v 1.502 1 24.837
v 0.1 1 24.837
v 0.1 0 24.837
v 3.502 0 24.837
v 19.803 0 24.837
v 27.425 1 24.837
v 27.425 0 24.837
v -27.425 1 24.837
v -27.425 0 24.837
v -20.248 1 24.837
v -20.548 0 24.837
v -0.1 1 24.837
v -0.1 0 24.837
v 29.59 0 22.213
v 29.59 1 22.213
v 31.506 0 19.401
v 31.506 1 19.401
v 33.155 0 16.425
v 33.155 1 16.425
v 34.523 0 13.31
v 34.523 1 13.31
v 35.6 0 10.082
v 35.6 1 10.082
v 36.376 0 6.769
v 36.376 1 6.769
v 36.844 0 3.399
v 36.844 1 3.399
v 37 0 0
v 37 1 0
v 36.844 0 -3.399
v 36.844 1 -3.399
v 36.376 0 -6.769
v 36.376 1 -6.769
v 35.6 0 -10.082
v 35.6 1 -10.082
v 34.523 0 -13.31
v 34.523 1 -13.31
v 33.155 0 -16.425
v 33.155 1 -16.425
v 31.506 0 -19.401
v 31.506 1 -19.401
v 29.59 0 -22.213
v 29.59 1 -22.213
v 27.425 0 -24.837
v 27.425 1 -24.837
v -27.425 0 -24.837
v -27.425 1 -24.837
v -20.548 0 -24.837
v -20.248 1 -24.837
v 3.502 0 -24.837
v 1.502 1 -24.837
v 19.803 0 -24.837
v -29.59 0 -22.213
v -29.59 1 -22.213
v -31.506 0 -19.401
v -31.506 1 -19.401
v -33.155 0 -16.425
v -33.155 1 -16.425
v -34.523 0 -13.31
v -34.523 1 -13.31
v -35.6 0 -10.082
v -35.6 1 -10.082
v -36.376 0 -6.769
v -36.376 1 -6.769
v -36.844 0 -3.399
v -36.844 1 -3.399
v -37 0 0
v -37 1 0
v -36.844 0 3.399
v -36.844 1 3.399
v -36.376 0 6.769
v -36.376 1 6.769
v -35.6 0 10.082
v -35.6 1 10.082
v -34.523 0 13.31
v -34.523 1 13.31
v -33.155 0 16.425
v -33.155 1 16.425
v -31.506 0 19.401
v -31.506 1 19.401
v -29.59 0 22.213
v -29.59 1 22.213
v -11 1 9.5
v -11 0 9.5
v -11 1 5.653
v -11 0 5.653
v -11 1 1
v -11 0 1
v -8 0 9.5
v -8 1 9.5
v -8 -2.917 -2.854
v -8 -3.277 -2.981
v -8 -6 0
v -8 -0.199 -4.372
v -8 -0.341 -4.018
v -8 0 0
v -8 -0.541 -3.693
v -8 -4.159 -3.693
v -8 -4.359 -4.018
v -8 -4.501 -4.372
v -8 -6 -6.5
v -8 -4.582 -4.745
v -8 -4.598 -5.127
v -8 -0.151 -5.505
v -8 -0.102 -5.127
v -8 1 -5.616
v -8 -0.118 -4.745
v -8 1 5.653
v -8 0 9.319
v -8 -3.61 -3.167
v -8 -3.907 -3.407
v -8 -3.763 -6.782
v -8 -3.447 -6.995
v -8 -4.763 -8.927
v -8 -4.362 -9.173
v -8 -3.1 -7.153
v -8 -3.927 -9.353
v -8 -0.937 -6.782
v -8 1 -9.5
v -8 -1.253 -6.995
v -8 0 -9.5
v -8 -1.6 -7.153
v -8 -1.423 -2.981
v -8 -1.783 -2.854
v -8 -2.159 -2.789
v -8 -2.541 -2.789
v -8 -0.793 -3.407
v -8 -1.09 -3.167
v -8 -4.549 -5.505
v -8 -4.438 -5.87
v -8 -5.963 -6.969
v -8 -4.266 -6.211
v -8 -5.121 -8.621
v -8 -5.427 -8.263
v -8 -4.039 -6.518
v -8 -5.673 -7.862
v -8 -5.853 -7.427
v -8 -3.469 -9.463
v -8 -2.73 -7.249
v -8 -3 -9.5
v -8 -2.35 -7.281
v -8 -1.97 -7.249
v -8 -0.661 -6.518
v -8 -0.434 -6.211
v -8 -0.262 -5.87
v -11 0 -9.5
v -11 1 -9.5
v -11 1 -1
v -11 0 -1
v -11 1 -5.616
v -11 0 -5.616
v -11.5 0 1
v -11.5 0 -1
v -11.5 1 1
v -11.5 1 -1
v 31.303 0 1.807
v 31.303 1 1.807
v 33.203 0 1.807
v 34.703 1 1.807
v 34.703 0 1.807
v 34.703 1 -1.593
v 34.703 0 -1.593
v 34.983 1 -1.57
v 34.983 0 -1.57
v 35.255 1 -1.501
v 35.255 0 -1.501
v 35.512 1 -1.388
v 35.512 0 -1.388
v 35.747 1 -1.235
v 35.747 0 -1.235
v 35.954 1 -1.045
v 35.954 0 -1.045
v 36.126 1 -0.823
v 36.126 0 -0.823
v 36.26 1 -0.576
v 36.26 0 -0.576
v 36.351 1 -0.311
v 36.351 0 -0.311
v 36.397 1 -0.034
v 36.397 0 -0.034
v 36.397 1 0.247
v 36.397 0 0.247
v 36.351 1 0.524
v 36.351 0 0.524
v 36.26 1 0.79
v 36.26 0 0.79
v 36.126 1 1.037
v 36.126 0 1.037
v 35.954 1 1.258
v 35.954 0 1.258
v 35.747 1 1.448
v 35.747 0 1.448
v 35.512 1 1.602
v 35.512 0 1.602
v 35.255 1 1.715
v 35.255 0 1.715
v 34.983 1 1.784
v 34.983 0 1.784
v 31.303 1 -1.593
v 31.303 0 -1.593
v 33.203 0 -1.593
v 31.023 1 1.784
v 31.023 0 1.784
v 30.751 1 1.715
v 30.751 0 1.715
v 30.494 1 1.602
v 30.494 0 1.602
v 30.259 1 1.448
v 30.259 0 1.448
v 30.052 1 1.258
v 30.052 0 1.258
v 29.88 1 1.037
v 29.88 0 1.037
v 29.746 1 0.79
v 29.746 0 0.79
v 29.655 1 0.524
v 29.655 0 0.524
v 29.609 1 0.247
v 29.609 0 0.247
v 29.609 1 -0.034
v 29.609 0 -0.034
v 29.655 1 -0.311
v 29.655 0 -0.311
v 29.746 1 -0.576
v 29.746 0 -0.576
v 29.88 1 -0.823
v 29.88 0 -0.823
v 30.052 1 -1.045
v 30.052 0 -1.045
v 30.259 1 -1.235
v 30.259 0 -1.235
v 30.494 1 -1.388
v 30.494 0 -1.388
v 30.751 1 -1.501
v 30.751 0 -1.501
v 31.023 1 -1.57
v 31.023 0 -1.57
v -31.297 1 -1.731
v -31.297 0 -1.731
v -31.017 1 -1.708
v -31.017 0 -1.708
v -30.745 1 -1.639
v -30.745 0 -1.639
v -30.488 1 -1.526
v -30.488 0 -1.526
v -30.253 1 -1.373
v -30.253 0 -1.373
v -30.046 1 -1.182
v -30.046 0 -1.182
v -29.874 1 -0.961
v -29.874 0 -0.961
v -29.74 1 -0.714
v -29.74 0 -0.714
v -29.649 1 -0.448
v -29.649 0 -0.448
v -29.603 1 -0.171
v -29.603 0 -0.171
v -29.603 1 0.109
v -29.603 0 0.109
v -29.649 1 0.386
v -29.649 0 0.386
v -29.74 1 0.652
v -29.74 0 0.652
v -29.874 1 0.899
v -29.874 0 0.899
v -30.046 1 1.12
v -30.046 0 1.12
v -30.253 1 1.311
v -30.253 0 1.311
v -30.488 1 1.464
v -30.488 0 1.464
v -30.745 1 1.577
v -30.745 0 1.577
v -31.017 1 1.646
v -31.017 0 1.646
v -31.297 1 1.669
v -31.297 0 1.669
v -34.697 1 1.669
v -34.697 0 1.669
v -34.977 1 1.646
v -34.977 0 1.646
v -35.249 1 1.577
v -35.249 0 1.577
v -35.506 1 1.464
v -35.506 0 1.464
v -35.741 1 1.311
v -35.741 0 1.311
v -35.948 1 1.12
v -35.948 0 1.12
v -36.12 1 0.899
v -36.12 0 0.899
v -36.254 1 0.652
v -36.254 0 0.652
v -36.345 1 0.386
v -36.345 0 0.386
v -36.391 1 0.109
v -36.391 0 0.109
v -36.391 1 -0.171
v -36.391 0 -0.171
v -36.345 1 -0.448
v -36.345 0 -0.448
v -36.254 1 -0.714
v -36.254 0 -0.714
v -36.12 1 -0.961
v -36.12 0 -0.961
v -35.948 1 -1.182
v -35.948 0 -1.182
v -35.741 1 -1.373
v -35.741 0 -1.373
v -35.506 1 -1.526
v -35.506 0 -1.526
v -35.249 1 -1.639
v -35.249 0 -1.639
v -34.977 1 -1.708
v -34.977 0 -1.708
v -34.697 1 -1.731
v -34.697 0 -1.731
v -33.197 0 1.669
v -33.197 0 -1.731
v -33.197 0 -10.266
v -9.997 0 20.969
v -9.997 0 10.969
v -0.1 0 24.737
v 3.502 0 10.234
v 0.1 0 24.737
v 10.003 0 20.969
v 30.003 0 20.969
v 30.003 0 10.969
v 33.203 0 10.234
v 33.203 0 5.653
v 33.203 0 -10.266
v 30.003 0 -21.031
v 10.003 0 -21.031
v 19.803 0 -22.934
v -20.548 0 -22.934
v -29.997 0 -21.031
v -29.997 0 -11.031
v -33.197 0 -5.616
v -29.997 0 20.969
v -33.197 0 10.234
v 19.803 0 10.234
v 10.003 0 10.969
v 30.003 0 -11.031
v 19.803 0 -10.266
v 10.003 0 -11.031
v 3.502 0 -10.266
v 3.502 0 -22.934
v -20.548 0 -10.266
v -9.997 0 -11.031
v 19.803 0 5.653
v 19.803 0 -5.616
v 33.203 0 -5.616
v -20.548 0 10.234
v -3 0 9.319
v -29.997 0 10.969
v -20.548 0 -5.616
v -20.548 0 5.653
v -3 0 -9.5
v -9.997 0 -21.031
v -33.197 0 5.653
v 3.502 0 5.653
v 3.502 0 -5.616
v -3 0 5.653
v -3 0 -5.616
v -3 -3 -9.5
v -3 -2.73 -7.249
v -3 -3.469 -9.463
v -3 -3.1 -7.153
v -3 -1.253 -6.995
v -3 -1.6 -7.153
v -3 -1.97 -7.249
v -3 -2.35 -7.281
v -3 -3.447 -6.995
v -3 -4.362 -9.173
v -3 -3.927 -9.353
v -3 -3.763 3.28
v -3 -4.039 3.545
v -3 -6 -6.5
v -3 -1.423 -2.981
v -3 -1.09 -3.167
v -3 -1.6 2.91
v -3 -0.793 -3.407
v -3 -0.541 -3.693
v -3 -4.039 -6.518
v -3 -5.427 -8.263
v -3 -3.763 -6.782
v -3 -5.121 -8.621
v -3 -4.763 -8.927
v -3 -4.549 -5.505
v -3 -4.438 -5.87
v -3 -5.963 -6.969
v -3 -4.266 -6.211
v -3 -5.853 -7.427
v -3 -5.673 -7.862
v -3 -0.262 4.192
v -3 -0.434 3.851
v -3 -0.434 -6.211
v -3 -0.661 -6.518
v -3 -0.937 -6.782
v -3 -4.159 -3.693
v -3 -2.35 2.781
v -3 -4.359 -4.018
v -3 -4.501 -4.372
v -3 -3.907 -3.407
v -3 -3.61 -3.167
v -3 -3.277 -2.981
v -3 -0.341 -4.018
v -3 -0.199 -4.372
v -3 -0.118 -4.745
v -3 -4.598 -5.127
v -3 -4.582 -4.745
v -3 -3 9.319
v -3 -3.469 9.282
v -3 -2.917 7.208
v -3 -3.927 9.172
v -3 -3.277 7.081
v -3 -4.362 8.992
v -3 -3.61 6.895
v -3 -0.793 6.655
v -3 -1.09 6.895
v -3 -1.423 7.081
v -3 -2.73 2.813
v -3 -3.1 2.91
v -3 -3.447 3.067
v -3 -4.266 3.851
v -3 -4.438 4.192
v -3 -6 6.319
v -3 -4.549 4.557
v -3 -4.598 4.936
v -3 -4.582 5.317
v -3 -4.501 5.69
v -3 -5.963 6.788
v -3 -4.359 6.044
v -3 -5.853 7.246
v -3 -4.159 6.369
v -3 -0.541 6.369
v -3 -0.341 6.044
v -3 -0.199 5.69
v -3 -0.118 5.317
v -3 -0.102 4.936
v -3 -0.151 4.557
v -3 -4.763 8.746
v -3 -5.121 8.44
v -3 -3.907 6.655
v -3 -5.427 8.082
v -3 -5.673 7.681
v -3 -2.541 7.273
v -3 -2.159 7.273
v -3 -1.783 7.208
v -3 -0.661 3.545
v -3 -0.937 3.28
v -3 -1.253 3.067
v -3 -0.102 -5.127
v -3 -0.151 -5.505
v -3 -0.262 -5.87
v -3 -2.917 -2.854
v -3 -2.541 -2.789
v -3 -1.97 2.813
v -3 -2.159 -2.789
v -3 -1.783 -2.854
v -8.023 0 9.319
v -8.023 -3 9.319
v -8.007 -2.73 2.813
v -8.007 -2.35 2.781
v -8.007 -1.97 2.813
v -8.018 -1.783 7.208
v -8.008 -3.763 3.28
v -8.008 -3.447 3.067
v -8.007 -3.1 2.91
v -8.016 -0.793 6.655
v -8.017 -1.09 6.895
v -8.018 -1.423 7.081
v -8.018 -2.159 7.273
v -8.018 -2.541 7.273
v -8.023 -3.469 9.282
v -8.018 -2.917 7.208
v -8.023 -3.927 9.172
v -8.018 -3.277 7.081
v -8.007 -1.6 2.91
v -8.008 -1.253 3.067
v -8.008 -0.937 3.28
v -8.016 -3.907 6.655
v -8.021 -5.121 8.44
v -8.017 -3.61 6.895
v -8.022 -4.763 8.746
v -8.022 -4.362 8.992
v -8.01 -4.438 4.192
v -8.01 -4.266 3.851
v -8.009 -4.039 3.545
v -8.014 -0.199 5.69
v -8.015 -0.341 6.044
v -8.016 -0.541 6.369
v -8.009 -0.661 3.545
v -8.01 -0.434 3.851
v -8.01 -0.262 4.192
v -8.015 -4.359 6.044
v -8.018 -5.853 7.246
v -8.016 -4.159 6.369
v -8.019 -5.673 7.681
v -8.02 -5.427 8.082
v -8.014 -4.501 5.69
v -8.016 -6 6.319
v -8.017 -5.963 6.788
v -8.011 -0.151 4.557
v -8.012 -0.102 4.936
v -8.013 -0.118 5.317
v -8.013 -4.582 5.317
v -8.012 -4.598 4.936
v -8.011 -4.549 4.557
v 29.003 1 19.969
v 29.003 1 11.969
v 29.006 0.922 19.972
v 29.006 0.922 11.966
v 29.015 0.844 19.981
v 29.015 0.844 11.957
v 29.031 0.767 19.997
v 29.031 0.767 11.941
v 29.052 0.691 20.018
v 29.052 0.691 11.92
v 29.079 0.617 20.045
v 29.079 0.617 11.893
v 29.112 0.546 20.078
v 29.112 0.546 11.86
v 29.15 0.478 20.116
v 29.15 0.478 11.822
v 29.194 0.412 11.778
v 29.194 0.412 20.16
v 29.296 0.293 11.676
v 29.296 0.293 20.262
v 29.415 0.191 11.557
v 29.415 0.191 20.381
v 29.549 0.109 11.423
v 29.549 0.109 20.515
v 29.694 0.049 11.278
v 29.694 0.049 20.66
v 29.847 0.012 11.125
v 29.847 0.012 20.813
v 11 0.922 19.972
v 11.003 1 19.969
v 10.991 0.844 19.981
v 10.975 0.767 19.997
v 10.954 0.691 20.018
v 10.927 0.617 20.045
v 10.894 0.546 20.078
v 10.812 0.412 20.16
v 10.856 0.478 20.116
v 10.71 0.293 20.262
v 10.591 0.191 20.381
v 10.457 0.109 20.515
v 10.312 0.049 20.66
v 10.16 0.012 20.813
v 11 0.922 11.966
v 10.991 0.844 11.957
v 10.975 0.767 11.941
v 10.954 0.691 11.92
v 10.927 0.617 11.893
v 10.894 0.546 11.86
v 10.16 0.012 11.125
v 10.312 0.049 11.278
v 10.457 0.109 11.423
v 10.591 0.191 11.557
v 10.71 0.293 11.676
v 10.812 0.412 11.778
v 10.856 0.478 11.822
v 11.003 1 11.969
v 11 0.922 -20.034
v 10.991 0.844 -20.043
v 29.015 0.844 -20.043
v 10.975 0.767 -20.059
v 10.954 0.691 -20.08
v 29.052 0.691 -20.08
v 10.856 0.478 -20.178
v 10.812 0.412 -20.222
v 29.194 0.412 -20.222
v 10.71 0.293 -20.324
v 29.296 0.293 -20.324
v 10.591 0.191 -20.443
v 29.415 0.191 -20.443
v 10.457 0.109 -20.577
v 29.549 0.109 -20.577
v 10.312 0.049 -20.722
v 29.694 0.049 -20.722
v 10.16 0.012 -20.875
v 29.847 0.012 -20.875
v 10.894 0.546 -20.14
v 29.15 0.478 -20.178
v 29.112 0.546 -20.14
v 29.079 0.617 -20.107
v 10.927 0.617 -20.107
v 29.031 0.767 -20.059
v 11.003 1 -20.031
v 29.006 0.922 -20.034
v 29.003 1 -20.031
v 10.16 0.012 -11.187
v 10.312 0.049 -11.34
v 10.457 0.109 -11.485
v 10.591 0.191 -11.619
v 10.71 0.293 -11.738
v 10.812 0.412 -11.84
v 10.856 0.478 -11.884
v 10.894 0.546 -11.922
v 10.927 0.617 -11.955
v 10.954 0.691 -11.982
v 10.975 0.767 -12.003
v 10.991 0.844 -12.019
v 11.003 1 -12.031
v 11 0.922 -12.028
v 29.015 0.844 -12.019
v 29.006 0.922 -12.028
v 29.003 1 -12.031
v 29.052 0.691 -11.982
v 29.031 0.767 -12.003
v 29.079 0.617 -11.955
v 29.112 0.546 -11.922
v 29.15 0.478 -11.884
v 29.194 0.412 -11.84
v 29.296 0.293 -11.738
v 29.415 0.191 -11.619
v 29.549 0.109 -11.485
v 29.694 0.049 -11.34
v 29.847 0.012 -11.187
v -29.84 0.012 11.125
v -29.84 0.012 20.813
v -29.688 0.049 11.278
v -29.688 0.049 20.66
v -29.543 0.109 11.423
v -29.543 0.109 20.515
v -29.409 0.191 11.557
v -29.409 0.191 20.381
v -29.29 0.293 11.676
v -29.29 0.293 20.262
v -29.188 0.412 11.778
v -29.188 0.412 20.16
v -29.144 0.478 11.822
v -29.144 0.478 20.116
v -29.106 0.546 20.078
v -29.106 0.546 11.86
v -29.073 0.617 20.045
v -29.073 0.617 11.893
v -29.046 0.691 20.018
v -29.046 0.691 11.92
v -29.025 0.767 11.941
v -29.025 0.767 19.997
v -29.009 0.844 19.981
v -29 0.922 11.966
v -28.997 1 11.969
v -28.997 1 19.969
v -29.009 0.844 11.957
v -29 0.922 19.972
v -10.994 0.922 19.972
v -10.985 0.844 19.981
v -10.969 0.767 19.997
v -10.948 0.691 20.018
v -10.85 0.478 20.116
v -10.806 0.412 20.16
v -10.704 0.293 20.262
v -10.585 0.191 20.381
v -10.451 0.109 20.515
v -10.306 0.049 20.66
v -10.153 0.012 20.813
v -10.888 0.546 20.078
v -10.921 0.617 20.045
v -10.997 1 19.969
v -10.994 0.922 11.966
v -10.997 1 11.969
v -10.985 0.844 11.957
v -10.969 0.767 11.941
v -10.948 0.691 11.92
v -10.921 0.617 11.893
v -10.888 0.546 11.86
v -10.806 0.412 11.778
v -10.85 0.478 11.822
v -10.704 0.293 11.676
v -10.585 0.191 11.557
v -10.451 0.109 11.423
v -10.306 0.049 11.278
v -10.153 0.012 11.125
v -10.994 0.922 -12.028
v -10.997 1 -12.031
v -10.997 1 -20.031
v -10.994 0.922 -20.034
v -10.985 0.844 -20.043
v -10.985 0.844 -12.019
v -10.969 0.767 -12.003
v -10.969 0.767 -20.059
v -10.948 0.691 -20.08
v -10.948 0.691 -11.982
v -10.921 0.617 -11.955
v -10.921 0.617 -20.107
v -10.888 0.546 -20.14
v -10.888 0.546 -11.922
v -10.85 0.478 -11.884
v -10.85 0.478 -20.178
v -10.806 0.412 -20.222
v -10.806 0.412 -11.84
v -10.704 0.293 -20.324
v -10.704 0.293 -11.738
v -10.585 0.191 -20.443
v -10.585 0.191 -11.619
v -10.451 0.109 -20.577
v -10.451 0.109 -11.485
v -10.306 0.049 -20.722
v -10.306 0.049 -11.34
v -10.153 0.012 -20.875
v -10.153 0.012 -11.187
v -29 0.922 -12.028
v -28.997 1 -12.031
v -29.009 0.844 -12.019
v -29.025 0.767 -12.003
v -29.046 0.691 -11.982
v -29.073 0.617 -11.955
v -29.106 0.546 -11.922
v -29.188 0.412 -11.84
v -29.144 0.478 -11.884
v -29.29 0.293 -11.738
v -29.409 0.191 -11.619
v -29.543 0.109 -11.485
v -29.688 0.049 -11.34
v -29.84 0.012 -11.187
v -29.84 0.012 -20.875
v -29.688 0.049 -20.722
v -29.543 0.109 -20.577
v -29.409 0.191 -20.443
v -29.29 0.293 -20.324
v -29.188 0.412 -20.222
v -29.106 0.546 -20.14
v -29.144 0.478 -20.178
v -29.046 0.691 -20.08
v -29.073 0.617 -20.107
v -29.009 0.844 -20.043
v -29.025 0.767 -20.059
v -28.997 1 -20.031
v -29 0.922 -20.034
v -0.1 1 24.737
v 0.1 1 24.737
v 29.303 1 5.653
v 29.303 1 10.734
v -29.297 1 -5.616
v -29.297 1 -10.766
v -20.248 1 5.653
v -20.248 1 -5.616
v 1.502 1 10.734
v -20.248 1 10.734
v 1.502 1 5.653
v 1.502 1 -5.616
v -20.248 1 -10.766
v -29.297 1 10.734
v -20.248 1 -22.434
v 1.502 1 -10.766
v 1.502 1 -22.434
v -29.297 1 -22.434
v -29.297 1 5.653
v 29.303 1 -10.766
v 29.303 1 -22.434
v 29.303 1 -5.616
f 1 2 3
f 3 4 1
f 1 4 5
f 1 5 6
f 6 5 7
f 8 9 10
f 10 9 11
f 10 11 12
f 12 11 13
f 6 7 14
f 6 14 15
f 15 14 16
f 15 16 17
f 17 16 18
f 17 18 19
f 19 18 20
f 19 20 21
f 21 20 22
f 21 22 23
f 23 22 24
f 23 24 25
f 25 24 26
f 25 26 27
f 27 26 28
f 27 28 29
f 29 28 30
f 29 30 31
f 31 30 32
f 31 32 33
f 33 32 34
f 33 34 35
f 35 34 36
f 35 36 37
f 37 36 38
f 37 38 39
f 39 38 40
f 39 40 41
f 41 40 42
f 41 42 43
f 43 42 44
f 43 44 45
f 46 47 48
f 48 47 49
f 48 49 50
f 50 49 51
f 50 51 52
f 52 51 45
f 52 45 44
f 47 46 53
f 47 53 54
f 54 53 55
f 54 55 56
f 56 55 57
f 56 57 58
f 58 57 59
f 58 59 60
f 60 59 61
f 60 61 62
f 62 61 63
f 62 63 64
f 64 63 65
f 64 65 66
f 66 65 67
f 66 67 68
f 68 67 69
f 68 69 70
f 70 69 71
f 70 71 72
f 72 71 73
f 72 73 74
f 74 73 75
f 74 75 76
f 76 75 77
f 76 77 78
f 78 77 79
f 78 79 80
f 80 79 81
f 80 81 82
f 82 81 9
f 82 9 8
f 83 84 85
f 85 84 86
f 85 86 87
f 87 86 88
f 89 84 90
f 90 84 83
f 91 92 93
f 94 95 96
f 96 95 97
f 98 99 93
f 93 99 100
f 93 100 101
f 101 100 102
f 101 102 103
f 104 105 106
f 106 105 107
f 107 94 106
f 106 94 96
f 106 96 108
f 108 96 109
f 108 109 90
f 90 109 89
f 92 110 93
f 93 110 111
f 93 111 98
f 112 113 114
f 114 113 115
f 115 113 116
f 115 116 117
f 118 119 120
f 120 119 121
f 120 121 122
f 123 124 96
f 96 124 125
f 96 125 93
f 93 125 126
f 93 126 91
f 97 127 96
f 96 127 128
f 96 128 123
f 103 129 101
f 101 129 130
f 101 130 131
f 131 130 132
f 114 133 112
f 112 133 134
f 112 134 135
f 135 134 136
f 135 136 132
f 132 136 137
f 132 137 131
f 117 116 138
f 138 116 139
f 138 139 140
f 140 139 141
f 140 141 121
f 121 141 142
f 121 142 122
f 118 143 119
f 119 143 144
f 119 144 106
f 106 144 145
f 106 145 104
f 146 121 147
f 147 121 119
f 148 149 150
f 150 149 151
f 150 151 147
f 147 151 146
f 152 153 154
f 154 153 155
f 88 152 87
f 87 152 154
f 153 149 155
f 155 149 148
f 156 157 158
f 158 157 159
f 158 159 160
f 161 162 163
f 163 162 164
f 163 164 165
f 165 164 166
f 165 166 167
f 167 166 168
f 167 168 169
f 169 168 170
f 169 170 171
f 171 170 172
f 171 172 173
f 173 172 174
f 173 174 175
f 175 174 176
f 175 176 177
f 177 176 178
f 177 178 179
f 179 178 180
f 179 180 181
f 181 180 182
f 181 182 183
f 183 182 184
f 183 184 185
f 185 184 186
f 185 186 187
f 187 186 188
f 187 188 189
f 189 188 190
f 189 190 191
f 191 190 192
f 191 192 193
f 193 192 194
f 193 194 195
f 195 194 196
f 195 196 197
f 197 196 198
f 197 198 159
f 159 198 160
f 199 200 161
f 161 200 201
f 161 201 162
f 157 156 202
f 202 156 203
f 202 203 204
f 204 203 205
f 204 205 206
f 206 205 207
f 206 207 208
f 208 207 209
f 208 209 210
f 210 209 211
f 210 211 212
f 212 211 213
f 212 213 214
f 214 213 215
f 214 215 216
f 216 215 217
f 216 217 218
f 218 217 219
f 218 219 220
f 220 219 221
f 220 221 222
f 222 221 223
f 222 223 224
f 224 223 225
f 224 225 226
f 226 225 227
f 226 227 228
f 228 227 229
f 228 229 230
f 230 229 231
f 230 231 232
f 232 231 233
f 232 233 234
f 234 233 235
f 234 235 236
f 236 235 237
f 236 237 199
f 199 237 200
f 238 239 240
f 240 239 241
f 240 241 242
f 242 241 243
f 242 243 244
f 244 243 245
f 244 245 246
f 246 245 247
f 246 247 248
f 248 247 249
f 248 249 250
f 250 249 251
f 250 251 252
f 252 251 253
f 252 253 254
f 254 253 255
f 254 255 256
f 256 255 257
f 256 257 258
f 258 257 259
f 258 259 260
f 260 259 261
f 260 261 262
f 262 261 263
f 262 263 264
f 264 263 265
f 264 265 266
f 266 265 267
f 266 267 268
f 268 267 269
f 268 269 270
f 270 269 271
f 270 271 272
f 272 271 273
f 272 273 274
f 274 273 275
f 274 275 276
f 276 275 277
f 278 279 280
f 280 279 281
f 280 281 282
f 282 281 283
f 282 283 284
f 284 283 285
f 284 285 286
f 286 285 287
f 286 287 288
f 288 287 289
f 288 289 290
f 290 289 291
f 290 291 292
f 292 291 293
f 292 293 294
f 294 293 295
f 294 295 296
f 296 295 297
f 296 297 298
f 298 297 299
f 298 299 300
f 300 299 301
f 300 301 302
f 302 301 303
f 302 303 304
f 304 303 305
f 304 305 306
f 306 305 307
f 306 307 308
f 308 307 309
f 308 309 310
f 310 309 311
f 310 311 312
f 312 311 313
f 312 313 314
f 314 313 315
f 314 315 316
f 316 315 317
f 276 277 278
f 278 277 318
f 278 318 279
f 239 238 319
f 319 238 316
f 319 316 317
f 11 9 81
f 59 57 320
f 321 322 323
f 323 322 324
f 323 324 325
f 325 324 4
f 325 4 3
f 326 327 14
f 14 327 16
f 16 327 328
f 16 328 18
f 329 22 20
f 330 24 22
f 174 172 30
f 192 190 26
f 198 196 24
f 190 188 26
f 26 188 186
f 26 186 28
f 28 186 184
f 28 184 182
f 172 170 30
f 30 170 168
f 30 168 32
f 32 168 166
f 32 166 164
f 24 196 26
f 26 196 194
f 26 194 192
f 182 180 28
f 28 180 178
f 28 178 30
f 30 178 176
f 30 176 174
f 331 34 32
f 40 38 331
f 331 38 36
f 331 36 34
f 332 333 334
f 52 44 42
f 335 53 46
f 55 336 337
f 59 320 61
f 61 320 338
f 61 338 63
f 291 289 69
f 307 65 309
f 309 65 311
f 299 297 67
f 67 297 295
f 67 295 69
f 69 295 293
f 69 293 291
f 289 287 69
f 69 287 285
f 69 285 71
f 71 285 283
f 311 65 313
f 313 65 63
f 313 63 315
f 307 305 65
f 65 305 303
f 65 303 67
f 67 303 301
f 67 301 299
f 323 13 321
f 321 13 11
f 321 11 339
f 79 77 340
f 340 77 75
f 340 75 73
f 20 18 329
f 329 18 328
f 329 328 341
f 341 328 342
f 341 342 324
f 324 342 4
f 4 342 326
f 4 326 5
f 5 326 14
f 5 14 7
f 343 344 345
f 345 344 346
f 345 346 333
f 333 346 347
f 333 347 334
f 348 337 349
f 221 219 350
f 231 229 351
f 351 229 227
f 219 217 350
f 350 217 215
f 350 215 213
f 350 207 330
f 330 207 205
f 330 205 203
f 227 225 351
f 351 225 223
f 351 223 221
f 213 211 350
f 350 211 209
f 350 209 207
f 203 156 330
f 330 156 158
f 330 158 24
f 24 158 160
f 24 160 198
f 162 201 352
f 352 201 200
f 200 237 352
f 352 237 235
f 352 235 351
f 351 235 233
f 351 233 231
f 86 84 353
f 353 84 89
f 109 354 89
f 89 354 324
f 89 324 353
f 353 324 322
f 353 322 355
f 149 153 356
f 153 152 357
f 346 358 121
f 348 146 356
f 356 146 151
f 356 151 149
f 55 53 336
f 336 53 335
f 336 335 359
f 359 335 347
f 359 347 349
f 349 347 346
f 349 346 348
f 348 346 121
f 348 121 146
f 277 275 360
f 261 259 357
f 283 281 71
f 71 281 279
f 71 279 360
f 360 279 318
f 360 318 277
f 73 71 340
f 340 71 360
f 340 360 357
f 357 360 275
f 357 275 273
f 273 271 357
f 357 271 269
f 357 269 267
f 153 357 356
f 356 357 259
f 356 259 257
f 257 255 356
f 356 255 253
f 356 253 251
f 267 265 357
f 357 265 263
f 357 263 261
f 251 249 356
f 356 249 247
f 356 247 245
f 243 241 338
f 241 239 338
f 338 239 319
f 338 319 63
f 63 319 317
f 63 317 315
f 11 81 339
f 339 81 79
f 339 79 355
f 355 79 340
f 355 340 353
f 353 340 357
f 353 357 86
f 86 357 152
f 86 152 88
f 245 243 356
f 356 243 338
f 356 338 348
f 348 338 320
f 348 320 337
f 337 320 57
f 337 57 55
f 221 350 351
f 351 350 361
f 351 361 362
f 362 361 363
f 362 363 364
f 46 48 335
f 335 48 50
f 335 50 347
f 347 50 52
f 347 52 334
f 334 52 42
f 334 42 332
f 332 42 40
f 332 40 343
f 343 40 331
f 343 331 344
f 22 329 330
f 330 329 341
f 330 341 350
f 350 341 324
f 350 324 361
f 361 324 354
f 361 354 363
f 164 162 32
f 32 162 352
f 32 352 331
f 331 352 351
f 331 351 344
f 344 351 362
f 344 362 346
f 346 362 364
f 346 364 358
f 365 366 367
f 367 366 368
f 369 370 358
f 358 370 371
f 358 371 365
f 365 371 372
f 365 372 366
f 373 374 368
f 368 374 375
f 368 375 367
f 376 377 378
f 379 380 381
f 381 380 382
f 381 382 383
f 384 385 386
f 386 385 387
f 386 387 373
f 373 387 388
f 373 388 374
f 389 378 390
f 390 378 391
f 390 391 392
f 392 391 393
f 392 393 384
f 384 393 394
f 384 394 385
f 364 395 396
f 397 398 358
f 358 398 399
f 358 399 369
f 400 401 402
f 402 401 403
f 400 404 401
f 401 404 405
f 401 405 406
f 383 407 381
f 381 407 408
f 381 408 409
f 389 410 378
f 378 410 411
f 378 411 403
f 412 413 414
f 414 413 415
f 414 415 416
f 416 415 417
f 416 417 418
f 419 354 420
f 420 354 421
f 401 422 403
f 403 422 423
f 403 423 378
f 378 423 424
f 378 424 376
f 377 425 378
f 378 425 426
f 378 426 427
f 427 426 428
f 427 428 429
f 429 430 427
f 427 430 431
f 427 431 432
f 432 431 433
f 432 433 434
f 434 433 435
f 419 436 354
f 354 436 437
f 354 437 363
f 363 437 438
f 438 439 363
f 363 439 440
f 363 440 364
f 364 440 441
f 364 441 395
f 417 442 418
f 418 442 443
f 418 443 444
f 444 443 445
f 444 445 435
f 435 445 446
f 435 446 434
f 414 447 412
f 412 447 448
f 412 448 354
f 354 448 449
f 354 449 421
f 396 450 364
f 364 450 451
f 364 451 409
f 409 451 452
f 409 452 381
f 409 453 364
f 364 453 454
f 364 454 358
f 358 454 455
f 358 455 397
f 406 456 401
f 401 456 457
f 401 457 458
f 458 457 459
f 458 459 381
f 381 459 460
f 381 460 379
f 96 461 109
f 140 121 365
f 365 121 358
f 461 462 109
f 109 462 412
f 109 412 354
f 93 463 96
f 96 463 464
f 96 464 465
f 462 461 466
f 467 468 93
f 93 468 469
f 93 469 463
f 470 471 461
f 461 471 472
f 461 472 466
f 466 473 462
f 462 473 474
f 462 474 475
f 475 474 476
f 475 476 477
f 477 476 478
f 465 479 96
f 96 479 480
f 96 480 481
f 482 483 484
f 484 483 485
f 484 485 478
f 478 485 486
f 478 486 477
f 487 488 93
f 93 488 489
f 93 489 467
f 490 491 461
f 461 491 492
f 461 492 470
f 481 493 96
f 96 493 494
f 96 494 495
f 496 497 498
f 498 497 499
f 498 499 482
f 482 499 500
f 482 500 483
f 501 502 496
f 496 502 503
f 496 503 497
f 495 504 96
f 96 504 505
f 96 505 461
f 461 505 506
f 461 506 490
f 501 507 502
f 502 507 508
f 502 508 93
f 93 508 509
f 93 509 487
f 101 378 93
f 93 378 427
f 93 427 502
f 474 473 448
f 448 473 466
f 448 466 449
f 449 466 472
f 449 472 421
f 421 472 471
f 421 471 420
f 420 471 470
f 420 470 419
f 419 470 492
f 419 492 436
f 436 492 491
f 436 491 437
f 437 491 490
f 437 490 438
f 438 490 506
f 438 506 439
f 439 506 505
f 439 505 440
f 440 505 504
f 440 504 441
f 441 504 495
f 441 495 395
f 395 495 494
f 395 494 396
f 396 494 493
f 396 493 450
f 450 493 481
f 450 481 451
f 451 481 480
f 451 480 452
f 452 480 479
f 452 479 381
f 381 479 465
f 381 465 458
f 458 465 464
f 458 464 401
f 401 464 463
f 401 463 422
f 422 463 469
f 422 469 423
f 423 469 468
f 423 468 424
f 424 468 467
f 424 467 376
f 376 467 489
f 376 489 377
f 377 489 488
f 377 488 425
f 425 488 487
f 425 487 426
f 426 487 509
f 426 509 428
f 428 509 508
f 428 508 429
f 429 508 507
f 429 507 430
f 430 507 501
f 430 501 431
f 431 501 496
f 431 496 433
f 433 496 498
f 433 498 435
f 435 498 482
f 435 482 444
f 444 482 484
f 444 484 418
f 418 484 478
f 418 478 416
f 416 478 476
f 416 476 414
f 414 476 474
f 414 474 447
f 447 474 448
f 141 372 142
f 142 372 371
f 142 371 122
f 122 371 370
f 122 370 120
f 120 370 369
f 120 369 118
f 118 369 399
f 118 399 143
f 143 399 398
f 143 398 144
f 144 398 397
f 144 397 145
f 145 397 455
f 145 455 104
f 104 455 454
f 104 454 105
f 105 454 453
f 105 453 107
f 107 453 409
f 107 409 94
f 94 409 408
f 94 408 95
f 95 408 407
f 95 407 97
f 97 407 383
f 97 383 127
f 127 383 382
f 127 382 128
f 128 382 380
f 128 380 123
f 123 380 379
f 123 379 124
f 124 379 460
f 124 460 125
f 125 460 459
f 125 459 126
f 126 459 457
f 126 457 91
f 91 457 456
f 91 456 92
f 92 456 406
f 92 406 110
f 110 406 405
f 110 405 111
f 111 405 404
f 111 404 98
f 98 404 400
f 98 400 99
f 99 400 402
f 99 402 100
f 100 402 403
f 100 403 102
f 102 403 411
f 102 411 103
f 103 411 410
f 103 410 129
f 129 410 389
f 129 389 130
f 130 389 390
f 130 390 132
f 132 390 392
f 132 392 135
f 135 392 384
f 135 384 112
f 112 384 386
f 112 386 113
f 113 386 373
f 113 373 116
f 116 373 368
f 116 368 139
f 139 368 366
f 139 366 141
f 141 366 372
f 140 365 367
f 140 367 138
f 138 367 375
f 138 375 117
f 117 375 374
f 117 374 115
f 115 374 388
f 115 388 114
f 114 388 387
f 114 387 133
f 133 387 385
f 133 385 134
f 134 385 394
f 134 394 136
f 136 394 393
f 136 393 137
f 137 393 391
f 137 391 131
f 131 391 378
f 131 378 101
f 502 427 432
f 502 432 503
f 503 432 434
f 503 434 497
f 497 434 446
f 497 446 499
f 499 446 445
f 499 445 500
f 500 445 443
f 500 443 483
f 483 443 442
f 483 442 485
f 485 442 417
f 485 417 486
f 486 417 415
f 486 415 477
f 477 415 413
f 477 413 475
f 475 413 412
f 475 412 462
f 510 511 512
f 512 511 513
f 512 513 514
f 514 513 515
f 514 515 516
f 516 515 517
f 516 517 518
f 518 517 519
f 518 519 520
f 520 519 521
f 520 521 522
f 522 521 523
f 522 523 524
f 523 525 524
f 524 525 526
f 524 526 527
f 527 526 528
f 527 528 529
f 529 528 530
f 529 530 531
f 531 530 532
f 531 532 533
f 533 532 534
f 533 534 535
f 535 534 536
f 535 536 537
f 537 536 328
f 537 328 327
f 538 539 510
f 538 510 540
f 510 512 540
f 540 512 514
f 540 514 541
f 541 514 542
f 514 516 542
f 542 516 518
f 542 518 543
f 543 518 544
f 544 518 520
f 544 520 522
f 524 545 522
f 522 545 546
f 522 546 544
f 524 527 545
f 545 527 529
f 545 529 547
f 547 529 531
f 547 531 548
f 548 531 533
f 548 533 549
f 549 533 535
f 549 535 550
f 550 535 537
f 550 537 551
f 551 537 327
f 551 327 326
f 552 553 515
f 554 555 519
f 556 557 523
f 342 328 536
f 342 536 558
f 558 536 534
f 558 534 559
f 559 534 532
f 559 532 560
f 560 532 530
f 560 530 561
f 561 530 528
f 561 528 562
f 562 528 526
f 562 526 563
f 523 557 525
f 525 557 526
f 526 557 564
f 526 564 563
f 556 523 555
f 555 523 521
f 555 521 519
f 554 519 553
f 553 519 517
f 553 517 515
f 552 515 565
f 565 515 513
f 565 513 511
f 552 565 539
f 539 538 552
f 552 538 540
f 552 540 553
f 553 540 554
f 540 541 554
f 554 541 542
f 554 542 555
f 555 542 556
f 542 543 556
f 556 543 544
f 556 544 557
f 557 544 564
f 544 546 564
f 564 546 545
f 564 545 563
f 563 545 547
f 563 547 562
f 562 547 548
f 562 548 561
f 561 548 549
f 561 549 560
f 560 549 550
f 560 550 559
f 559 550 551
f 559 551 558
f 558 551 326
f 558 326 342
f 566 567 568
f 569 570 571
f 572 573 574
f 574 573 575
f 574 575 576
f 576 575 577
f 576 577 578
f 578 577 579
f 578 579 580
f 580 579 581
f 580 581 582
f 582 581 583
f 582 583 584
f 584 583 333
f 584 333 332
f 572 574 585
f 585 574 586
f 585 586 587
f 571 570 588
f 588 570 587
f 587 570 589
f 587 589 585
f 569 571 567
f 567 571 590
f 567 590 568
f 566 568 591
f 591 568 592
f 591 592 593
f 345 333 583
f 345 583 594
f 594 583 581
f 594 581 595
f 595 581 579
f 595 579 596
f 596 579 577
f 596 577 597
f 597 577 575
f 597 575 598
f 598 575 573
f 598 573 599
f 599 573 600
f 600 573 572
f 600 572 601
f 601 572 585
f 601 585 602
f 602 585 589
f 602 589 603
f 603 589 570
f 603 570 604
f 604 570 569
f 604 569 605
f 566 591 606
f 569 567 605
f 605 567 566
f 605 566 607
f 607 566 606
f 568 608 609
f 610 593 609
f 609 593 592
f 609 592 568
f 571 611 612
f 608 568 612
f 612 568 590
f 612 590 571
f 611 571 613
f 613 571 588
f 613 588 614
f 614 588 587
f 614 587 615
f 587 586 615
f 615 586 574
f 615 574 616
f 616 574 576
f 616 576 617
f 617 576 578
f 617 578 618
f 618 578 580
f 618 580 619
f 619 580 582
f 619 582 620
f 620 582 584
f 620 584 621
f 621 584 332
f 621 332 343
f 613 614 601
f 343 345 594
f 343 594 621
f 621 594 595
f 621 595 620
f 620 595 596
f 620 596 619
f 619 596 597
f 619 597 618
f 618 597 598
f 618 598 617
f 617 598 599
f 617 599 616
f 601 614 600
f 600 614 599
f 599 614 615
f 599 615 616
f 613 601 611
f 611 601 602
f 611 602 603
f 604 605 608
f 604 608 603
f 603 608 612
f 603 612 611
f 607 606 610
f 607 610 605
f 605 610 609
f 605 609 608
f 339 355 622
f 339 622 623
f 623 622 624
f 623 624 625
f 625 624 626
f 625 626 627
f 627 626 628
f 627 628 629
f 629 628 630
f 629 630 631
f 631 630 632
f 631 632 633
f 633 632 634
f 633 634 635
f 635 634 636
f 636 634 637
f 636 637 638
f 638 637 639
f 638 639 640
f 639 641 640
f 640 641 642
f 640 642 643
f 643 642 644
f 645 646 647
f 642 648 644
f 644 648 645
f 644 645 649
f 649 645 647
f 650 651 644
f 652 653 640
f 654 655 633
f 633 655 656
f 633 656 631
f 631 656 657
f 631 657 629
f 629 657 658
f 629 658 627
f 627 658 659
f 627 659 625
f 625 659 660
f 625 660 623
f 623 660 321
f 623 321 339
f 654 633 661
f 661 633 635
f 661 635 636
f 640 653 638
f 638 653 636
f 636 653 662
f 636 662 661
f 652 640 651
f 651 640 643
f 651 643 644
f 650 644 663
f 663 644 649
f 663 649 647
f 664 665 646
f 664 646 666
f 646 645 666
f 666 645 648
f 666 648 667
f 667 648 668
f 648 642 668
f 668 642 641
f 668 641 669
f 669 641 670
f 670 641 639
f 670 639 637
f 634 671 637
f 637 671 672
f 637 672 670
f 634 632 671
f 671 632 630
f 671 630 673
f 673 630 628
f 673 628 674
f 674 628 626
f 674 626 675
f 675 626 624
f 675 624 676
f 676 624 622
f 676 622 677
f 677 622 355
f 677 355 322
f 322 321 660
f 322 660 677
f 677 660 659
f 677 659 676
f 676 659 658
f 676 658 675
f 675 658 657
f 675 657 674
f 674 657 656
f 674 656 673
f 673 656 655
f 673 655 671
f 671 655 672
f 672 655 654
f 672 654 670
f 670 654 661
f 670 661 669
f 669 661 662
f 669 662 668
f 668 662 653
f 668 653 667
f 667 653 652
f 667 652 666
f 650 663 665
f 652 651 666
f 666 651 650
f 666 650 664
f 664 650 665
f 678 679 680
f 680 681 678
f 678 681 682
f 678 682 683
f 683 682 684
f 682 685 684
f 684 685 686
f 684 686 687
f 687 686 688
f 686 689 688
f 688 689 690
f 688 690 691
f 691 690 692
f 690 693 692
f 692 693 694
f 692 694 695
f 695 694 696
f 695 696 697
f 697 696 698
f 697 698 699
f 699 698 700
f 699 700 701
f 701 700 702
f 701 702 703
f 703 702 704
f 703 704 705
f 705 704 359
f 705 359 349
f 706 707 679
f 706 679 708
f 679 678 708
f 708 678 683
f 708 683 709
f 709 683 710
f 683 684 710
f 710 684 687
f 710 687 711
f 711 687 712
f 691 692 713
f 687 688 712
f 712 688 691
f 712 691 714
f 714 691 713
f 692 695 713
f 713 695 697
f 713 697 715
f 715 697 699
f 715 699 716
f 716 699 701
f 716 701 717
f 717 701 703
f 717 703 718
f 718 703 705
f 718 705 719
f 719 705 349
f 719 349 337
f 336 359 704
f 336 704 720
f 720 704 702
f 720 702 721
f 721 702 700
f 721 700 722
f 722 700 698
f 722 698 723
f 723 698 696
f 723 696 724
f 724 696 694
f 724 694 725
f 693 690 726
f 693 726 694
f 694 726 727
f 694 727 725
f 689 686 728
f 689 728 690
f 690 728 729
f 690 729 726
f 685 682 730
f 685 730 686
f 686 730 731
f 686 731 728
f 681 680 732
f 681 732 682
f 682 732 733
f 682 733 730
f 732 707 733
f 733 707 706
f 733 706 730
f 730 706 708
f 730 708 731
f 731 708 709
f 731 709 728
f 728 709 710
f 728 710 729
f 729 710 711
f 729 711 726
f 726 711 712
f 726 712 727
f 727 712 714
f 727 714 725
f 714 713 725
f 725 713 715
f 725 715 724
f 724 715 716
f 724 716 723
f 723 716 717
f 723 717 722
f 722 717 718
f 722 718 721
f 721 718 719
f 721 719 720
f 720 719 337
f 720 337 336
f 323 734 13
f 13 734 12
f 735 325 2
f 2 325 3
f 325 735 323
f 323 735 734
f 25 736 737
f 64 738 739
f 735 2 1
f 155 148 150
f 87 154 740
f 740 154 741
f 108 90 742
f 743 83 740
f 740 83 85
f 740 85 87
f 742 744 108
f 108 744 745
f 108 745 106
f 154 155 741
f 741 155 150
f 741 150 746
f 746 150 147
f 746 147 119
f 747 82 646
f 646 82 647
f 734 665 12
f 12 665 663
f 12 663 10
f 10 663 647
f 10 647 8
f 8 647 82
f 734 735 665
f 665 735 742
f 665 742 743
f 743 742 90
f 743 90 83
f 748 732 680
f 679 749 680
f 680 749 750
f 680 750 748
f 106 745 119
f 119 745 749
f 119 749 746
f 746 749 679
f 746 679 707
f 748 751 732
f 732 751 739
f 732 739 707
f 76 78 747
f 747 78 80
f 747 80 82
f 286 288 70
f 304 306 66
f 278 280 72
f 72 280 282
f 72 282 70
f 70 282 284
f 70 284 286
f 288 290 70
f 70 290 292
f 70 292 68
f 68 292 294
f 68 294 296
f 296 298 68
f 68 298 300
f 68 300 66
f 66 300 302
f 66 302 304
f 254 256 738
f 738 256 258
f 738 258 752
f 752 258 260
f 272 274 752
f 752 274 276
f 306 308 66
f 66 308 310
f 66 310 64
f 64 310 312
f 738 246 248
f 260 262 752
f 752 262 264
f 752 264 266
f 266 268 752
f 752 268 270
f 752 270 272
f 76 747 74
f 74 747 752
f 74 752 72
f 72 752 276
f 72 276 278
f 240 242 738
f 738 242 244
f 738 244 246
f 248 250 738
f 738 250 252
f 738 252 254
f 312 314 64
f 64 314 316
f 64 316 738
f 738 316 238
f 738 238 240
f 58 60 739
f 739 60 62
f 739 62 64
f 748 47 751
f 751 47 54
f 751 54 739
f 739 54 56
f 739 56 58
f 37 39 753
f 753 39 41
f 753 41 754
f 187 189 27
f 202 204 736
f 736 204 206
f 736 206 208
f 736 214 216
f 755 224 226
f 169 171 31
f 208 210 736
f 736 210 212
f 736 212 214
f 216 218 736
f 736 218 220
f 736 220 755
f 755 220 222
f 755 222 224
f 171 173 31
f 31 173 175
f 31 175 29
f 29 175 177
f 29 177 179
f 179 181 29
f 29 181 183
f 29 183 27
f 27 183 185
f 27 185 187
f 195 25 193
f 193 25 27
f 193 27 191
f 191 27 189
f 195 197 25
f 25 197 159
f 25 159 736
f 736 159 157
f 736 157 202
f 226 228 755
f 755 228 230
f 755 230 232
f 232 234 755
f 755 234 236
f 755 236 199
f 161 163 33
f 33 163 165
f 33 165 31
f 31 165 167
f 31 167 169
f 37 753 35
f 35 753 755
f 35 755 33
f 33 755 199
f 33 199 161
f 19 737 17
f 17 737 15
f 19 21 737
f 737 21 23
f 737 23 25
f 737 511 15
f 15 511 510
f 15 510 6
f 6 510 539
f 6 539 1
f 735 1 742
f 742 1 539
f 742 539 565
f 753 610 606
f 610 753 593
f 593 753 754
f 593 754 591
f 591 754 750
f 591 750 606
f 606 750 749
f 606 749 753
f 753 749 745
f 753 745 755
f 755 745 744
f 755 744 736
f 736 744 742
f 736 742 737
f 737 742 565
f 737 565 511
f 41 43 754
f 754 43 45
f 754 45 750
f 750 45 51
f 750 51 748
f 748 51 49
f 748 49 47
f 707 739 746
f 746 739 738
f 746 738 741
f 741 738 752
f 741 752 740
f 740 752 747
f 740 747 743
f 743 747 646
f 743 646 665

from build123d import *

# Parameters (mm, degrees)
BOSS_EXTRUDE1_DEPTH     = 2
SKETCH2_W               = 3.5
SKETCH2_H               = 2
CUT_EXTRUDE1_DEPTH      = 22
BOSS_EXTRUDE2_DEPTH     = 7
BOSS_EXTRUDE3_DEPTH     = 6
SKETCH5_R               = 2.25
CUT_EXTRUDE3_DEPTH      = 37
CUT_EXTRUDE3_DEPTH_BACK = 37
FILLET1_R               = 3
FILLET2_R               = 0.5
CUT_EXTRUDE4_DEPTH      = 37
FILLET3_R               = 0.5
FILLET4_R               = 0.5
CUT_EXTRUDE5_DEPTH      = 10
FILLET8_R               = 1
SKETCH8_W               = 0.1
SKETCH8_H               = 1
CUT_EXTRUDE6_DEPTH      = 0.1
SKETCH11_R              = 50.237983701
CUT_EXTRUDE8_DEPTH      = 11
CUT_EXTRUDE8_DEPTH_BACK = 1


with BuildPart() as part:
    # Sketch1 → Boss-Extrude1 (new body)
    with BuildSketch(Plane(origin=(0, 0, 0), x_dir=(1, 0, 0), z_dir=(0, 1, 0))):
        with BuildLine():
            Line((-27.424590139, -24.837307739), (27.424590139, -24.837307739))
            ThreePointArc((27.424590139, -24.837307739), (37, 0), (27.424590139, 24.837307739))
            Line((27.424590139, 24.837307739), (-27.424590139, 24.837307739))
            ThreePointArc((-27.424590139, 24.837307739), (-37, 0), (-27.424590139, -24.837307739))
        make_face()
    extrude(amount=BOSS_EXTRUDE1_DEPTH)

    # Sketch2 → Cut-Extrude1 (cut)
    with BuildSketch(Plane.XZ):
        Polygon((-8, 0), (-8, 9.5), (-11, 9.5), (-11, -9.5), (-8, -9.5), align=None)
        with Locations((-9.75, 0)):
            Rectangle(SKETCH2_W, SKETCH2_H)
    extrude(amount=-CUT_EXTRUDE1_DEPTH, mode=Mode.SUBTRACT)

    # Sketch3 → Boss-Extrude2 (add)
    with BuildSketch(Plane(origin=(0, 2, 0), x_dir=(1, 0, 0), z_dir=(0, 1, 0))):
        Polygon((2.9, 11.6), (2.9, 10.1), (19, 10.1), (20.5, 10.1), (20.5, 11.6), align=None)
        Polygon((20.5, 10.1), (19, 10.1), (19, -10.1), (19, -11.6), (20.5, -11.6), align=None)
        Polygon((19, -11.6), (19, -10.1), (-14.6, -10.1), (-16.1, -10.1), (-16.1, -11.6), align=None)
        Polygon((-14.6, 10.1), (2.9, 10.1), (2.9, 11.6), (-16.1, 11.6), (-16.1, 10.1), align=None)
    extrude(amount=BOSS_EXTRUDE2_DEPTH)

    # Sketch4 → Boss-Extrude3 (add)
    with BuildSketch(Plane.XZ):
        Polygon((-8, 0), (-8.02303658, 9.318964787), (-3, 9.318964787), (-3, -9.5), (-8, -9.5), align=None)
    extrude(amount=BOSS_EXTRUDE3_DEPTH)

    # Sketch5 → Cut-Extrude3 (cut, two sides)
    with BuildSketch(Plane.ZY.offset(8)) as cut_extrude3_sk:
        with Locations((-5.031035213, -2.35)):
            Circle(SKETCH5_R)
        with Locations((5.031035213, -2.35)):
            Circle(SKETCH5_R)
    extrude(amount=CUT_EXTRUDE3_DEPTH, mode=Mode.SUBTRACT)
    extrude(cut_extrude3_sk.sketch, amount=-CUT_EXTRUDE3_DEPTH_BACK, mode=Mode.SUBTRACT)

    # Fillet1
    fillet1_edges = [part.edges().sort_by_distance(p)[0] for p in [
        (-5.5, -6, -9.5),
        (-5.51151829, -6, 9.318964787),
    ]]
    fillet(fillet1_edges, radius=FILLET1_R)

    # Fillet2
    fillet2_edges = [part.edges().sort_by_distance(p)[0] for p in [
        (-37, 2, 0),
        (37, 2, 0),
    ]]
    fillet(fillet2_edges, radius=FILLET2_R)

    # Sketch6 → Cut-Extrude4 (cut)
    with BuildSketch(Plane.XZ):
        with BuildLine():
            Line((-34.696885188, 1.668964787), (-31.296885188, 1.668964787))
            ThreePointArc((-31.296885188, 1.668964787), (-29.596885188, -0.031035213), (-31.296885188, -1.731035213))
            Line((-31.296885188, -1.731035213), (-34.696885188, -1.731035213))
            ThreePointArc((-34.696885188, -1.731035213), (-36.396885188, -0.031035213), (-34.696885188, 1.668964787))
        make_face()
        with BuildLine():
            Line((31.302827177, 1.806746588), (34.702827177, 1.806746588))
            ThreePointArc((34.702827177, 1.806746588), (36.402827177, 0.106746588), (34.702827177, -1.593253412))
            Line((34.702827177, -1.593253412), (31.302827177, -1.593253412))
            ThreePointArc((31.302827177, -1.593253412), (29.602827177, 0.106746588), (31.302827177, 1.806746588))
        make_face()
    extrude(amount=-CUT_EXTRUDE4_DEPTH, mode=Mode.SUBTRACT)

    # Fillet3
    fillet3_edges = [part.edges().sort_by_distance(p)[0] for p in [
        (20.5, 9, 0),
        (2.2, 9, -11.6),
        (2.2, 9, 11.6),
        (1.45, 9, -10.1),
        (19, 9, 0),
        (1.45, 9, 10.1),
    ]]
    fillet(fillet3_edges, radius=FILLET3_R)

    # Fillet4
    fillet4_edges = [part.edges().sort_by_distance(p)[0] for p in [
        (-16.1, 9, -10.85),
        (-16.1, 9, 10.85),
        (-16.1, 5.25, -10.1),
        (-16.1, 5.25, -11.6),
        (-16.1, 8.853553391, -11.453553391),
        (-16.1, 8.853553391, -10.246446609),
        (-16.1, 5.25, 11.6),
        (-16.1, 5.25, 10.1),
        (-16.1, 8.853553391, 10.246446609),
        (-16.1, 8.853553391, 11.453553391),
    ]]
    fillet(fillet4_edges, radius=FILLET4_R)

    # Sketch7 → Cut-Extrude5 (cut)
    with BuildSketch(Plane.XZ):
        Polygon((-19.996885188, 19.968964787), (-10.996885188, 19.968964787), (-10.996885188, 11.968964787), (-28.996885188, 11.968964787), (-28.996885188, 19.968964787), align=None)
        Polygon((11.003114812, 11.968964787), (20.003114812, 11.968964787), (20.003114812, 14.968964787), (20.003114812, 19.968964787), (11.003114812, 19.968964787), align=None)
        Polygon((20.003114812, 14.968964787), (20.003114812, 11.968964787), (29.003114812, 11.968964787), (29.003114812, 19.968964787), (20.003114812, 19.968964787), align=None)
        Polygon((-28.996885188, -12.031035213), (-28.996885188, -20.031035213), (-19.996885188, -20.031035213), (-10.996885188, -20.031035213), (-10.996885188, -12.031035213), align=None)
        Polygon((20.003114812, -20.031035213), (11.003114812, -20.031035213), (11.003114812, -12.031035213), (29.003114812, -12.031035213), (29.003114812, -20.031035213), align=None)
    extrude(amount=-CUT_EXTRUDE5_DEPTH, mode=Mode.SUBTRACT)

    # Fillet8
    fillet8_edges = [part.edges().sort_by_distance(p)[0] for p in [
        (11.003114812, 0, 15.968964787),
        (20.003114812, 0, 11.968964787),
        (29.003114812, 0, 15.968964787),
        (20.003114812, 0, 19.968964787),
        (-28.996885188, 0, -16.031035213),
        (-19.996885188, 0, -20.031035213),
        (-10.996885188, 0, -16.031035213),
        (-19.996885188, 0, -12.031035213),
        (20.003114812, 0, -20.031035213),
        (11.003114812, 0, -16.031035213),
        (20.003114812, 0, -12.031035213),
        (29.003114812, 0, -16.031035213),
        (-19.996885188, 0, 19.968964787),
        (-10.996885188, 0, 15.968964787),
        (-19.996885188, 0, 11.968964787),
        (-28.996885188, 0, 15.968964787),
    ]]
    fillet(fillet8_edges, radius=FILLET8_R)

    # Sketch8 → Cut-Extrude6 (cut)
    with BuildSketch(Plane.XY.offset(24.837307739)):
        with Locations((-0.05, 0.5)):
            Rectangle(SKETCH8_W, SKETCH8_H)
        with Locations((0.05, 0.5)):
            Rectangle(SKETCH8_W, SKETCH8_H)
    extrude(amount=-CUT_EXTRUDE6_DEPTH, mode=Mode.SUBTRACT)

    # Sketch11 → Cut-Extrude8 (cut, two sides)
    with BuildSketch(Plane(origin=(0, 2, 0), x_dir=(1, 0, 0), z_dir=(0, 1, 0))) as cut_extrude8_sk:
        Circle(SKETCH11_R)
    extrude(amount=CUT_EXTRUDE8_DEPTH, mode=Mode.SUBTRACT)
    extrude(cut_extrude8_sk.sketch, amount=-CUT_EXTRUDE8_DEPTH_BACK, mode=Mode.SUBTRACT)


solid = part.part
